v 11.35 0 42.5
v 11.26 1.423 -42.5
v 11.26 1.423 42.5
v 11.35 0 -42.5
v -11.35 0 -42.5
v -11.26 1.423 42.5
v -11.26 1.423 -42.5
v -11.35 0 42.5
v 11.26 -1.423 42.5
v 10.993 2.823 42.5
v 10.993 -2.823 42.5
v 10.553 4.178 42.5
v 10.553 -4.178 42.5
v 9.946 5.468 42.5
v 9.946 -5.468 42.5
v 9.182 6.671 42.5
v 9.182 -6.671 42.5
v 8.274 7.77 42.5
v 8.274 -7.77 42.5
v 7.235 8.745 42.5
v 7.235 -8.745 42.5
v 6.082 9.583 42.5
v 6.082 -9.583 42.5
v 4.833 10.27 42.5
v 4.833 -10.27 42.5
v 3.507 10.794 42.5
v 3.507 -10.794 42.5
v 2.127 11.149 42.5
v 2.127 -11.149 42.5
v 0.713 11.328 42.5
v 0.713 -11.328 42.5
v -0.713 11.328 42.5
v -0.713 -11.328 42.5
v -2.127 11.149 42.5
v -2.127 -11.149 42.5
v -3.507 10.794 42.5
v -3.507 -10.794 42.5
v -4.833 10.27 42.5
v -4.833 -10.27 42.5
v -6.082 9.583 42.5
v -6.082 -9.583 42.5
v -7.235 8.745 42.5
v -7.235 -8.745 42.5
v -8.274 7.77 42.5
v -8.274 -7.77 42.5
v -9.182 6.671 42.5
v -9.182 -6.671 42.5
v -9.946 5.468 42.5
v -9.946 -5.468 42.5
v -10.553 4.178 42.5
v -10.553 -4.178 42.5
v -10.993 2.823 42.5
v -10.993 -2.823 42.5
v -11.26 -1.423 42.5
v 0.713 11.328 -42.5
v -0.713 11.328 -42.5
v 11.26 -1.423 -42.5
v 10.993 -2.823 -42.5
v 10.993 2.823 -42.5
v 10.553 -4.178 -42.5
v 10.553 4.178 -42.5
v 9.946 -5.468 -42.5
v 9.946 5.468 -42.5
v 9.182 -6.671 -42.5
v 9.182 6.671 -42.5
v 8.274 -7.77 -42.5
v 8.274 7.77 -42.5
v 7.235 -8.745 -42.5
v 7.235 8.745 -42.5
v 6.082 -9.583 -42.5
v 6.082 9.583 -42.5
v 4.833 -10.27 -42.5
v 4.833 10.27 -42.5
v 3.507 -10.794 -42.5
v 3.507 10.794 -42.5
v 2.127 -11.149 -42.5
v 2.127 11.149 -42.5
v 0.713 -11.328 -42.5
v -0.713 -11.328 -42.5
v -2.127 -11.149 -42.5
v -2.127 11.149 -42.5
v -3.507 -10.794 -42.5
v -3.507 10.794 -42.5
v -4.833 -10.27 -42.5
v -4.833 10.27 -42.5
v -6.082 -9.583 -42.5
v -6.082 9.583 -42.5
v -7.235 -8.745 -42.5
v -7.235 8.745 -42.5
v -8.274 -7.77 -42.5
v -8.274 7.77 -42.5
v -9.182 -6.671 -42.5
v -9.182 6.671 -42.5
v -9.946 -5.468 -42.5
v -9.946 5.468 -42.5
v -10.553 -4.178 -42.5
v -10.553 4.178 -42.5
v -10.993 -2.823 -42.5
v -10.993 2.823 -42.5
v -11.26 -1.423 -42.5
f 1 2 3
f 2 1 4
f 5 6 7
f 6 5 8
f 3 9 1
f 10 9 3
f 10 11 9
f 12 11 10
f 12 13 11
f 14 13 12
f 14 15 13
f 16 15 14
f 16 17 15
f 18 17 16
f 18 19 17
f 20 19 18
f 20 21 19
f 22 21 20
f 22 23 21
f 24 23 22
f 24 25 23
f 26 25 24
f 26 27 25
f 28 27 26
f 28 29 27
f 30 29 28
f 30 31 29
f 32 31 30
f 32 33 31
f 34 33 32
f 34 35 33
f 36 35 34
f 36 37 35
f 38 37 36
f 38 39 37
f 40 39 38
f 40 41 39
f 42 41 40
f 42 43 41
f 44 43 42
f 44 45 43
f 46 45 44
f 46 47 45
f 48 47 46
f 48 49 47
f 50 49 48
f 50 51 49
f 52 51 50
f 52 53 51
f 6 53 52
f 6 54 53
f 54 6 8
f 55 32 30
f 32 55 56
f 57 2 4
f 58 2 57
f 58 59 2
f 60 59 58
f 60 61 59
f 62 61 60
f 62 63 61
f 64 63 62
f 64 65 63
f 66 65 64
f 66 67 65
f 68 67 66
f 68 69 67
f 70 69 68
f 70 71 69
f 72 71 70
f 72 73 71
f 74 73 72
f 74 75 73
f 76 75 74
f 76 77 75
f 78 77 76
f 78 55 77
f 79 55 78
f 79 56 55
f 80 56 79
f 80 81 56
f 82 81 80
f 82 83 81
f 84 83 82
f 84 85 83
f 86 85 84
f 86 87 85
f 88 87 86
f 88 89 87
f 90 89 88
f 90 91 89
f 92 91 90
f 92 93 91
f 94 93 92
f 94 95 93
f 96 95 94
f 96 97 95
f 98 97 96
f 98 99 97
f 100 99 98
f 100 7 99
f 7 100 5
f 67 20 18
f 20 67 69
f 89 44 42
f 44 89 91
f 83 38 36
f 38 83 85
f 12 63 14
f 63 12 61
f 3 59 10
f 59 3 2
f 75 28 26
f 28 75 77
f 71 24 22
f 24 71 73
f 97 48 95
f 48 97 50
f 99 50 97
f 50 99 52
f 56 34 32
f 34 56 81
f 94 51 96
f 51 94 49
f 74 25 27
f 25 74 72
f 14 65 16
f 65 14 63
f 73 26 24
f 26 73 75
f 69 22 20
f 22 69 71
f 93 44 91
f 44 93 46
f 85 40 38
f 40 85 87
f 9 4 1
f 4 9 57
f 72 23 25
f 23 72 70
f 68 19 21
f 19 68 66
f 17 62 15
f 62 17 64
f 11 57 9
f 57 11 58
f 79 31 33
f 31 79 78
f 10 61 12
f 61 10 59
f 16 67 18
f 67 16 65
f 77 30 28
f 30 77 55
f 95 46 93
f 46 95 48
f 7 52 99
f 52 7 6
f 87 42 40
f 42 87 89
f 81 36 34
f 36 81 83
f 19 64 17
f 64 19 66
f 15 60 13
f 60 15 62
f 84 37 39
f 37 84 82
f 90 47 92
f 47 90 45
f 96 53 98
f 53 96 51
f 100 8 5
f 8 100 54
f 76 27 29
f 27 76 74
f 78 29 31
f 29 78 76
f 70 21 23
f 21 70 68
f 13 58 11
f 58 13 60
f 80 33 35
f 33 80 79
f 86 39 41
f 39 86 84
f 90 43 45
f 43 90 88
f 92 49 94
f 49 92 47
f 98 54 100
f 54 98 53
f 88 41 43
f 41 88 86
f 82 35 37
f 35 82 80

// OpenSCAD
$fn = 50;


difference() {
	union() {
		translate(v = [0, 0, -42.5000000000]) {
			cylinder(h = 85, r = 11.3500000000);
		}
	}
	union() {
		translate(v = [0, 0, -100.0000000000]) {
			cylinder(h = 200, r = 0);
		}
	}
}
